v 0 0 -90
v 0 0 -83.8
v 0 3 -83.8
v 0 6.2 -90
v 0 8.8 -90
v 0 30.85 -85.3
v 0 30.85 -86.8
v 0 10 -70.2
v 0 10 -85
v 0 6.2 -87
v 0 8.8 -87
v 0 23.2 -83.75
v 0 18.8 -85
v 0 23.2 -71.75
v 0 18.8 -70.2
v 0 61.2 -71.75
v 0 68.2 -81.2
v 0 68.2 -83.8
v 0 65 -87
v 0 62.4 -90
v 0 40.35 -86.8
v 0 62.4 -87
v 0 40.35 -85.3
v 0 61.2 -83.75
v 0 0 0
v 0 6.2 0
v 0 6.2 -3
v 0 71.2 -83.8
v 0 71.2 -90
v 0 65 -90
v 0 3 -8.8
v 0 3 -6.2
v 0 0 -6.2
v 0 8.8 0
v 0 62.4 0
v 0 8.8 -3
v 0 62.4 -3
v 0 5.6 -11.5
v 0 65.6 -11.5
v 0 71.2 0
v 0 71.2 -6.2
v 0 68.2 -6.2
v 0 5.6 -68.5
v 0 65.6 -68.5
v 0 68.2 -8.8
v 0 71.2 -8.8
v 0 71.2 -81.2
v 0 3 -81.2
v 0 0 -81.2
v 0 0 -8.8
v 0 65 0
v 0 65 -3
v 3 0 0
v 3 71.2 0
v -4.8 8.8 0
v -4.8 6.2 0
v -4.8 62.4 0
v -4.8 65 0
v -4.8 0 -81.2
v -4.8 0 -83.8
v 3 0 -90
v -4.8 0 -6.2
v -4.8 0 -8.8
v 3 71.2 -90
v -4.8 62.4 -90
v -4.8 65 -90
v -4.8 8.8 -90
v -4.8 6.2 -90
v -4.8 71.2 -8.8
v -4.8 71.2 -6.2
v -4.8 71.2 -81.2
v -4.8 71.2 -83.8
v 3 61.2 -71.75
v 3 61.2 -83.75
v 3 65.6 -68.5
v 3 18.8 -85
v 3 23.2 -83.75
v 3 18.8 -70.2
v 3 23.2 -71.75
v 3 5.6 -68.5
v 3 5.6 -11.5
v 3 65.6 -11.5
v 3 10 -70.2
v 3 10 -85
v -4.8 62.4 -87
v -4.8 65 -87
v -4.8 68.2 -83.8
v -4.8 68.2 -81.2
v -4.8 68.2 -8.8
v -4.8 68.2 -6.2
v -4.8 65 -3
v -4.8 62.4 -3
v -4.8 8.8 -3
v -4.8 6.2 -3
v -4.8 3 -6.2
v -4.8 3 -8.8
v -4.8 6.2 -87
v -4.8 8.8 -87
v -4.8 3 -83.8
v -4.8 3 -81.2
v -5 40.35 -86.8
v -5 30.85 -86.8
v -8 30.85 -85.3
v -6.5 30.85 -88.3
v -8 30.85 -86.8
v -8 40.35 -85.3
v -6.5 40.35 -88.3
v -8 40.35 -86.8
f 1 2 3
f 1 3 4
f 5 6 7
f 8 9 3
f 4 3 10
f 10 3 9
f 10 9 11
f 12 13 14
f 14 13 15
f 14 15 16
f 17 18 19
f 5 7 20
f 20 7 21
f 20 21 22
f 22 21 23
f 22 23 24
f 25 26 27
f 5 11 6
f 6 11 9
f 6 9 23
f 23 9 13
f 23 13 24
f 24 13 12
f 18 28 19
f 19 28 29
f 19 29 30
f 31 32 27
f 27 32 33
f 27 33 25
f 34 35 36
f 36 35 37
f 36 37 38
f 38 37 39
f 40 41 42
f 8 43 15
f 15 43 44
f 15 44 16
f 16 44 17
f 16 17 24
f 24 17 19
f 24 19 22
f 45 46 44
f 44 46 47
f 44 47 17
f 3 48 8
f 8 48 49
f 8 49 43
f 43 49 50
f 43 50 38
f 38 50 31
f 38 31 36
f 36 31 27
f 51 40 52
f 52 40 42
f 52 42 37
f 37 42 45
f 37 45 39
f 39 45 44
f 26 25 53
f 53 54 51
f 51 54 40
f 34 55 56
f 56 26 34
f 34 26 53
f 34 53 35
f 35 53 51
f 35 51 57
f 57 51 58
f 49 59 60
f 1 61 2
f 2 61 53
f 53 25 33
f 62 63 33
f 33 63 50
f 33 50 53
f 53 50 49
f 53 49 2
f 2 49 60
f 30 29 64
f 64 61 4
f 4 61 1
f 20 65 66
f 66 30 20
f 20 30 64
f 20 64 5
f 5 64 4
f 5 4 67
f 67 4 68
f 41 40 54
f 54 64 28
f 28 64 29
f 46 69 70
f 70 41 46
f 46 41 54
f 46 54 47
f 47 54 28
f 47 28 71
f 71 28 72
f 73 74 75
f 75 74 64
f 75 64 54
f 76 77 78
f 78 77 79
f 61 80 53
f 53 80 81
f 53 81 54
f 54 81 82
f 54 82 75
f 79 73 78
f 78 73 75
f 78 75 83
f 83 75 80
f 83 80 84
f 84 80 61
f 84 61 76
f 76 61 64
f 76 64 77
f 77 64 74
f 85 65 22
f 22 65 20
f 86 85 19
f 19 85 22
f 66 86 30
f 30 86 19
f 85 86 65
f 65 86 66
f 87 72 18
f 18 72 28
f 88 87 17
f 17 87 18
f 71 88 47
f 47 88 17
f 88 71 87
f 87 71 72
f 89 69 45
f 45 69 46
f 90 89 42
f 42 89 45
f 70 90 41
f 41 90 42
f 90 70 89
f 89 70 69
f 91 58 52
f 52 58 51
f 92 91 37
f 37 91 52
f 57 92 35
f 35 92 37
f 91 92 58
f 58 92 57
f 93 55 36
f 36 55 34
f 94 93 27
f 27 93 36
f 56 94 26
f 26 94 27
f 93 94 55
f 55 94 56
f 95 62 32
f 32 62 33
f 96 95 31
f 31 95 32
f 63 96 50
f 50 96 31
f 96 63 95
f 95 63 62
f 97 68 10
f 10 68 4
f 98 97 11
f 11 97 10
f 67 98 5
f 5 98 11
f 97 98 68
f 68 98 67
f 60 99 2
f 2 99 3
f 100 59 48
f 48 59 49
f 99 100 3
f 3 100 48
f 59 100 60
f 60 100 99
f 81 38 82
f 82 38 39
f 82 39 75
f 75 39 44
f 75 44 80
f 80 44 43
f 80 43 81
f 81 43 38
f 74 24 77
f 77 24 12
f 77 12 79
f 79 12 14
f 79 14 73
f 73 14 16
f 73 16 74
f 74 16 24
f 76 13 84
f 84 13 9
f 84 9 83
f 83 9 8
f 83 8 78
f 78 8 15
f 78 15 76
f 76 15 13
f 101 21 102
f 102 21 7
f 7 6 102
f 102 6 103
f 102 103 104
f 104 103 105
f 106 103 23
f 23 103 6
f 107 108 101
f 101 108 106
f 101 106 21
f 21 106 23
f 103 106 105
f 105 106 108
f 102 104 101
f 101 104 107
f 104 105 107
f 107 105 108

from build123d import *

# Parameters (mm, degrees)
SKETCH1_W           = 90
SKETCH1_H           = 71.2
BOSS_EXTRUDE1_DEPTH = 3
SKETCH2_W           = 3
SKETCH2_H           = 2.6
SKETCH2_W_2         = 2.6
SKETCH2_H_2         = 3
BOSS_EXTRUDE2_DEPTH = 4.8
CUT_EXTRUDE1_REACH  = 117.023
SKETCH4_W           = 57
SKETCH4_H           = 60
CUT_EXTRUDE2_REACH  = 117.023
SKETCH5_W           = 14.8
SKETCH5_H           = 8.8
SKETCH5_W_2         = 12
SKETCH5_H_2         = 38
SKETCH6_W           = 1.5
SKETCH6_H           = 9.5
BOSS_EXTRUDE3_DEPTH = 8
BOSS_EXTRUDE4_DEPTH = 9.5


with BuildPart() as part:
    # Sketch1 → Boss-Extrude1 (new body)
    with BuildSketch(Plane(origin=(0, 0, 0), x_dir=(0, 0, -1), z_dir=(1, 0, 0))):
        with Locations((45, 35.6)):
            Rectangle(SKETCH1_W, SKETCH1_H)
    extrude(amount=BOSS_EXTRUDE1_DEPTH)

    # Sketch2 → Boss-Extrude2 (add)
    with BuildSketch(Plane.ZY):
        with Locations((-88.5, 63.7)):
            Rectangle(SKETCH2_W, SKETCH2_H)
        with Locations((-82.5, 69.7)):
            Rectangle(SKETCH2_W_2, SKETCH2_H_2)
        with Locations((-7.5, 69.7)):
            Rectangle(SKETCH2_W_2, SKETCH2_H_2)
        with Locations((-1.5, 63.7)):
            Rectangle(SKETCH2_W, SKETCH2_H)
        with Locations((-1.5, 7.5)):
            Rectangle(SKETCH2_W, SKETCH2_H)
        with Locations((-7.5, 1.5)):
            Rectangle(SKETCH2_W_2, SKETCH2_H_2)
        with Locations((-88.5, 7.5)):
            Rectangle(SKETCH2_W, SKETCH2_H)
        with Locations((-82.5, 1.5)):
            Rectangle(SKETCH2_W_2, SKETCH2_H_2)
    extrude(amount=BOSS_EXTRUDE2_DEPTH)

    # Sketch4 → Cut-Extrude1 (cut, up to next)
    with BuildSketch(Plane(origin=(3, 0, 0), x_dir=(0, 0, -1), z_dir=(1, 0, 0)), mode=Mode.PRIVATE) as cut_extrude1_sk1:
        with Locations((40, 35.6)):
            Rectangle(SKETCH4_W, SKETCH4_H)
    cut_extrude1_tool1 = extrude(cut_extrude1_sk1.sketch, amount=-CUT_EXTRUDE1_REACH, mode=Mode.PRIVATE) & part.part
    add(cut_extrude1_tool1.solids().sort_by_distance((3, 35.6, -40))[0], mode=Mode.SUBTRACT)

    # Sketch5 → Cut-Extrude2 (cut, up to next)
    with BuildSketch(Plane(origin=(3, 0, 0), x_dir=(0, 0, -1), z_dir=(1, 0, 0)), mode=Mode.PRIVATE) as cut_extrude2_sk1:
        with Locations((77.6, 14.4)):
            Rectangle(SKETCH5_W, SKETCH5_H)
    cut_extrude2_tool1 = extrude(cut_extrude2_sk1.sketch, amount=-CUT_EXTRUDE2_REACH, mode=Mode.PRIVATE) & part.part
    # Sketch5 → Cut-Extrude2 (cut, up to next)
    with BuildSketch(Plane(origin=(3, 0, 0), x_dir=(0, 0, -1), z_dir=(1, 0, 0)), mode=Mode.PRIVATE) as cut_extrude2_sk2:
        with Locations((77.75, 42.2)):
            Rectangle(SKETCH5_W_2, SKETCH5_H_2)
    cut_extrude2_tool2 = extrude(cut_extrude2_sk2.sketch, amount=-CUT_EXTRUDE2_REACH, mode=Mode.PRIVATE) & part.part
    add(cut_extrude2_tool1.solids().sort_by_distance((3, 14.4, -77.6))[0], mode=Mode.SUBTRACT)
    add(cut_extrude2_tool2.solids().sort_by_distance((3, 42.2, -77.75))[0], mode=Mode.SUBTRACT)

    # Sketch6 → Boss-Extrude3 (add)
    with BuildSketch(Plane.ZY):
        with Locations((-86.05, 35.6)):
            Rectangle(SKETCH6_W, SKETCH6_H)
    extrude(amount=BOSS_EXTRUDE3_DEPTH)

    # Sketch7 → Boss-Extrude4 (add)
    with BuildSketch(Plane.XZ.offset(-30.85)):
        Polygon((-8, -86.8), (-6.5, -88.3), (-5, -86.8), align=None)
    extrude(amount=-BOSS_EXTRUDE4_DEPTH)


solid = part.part
